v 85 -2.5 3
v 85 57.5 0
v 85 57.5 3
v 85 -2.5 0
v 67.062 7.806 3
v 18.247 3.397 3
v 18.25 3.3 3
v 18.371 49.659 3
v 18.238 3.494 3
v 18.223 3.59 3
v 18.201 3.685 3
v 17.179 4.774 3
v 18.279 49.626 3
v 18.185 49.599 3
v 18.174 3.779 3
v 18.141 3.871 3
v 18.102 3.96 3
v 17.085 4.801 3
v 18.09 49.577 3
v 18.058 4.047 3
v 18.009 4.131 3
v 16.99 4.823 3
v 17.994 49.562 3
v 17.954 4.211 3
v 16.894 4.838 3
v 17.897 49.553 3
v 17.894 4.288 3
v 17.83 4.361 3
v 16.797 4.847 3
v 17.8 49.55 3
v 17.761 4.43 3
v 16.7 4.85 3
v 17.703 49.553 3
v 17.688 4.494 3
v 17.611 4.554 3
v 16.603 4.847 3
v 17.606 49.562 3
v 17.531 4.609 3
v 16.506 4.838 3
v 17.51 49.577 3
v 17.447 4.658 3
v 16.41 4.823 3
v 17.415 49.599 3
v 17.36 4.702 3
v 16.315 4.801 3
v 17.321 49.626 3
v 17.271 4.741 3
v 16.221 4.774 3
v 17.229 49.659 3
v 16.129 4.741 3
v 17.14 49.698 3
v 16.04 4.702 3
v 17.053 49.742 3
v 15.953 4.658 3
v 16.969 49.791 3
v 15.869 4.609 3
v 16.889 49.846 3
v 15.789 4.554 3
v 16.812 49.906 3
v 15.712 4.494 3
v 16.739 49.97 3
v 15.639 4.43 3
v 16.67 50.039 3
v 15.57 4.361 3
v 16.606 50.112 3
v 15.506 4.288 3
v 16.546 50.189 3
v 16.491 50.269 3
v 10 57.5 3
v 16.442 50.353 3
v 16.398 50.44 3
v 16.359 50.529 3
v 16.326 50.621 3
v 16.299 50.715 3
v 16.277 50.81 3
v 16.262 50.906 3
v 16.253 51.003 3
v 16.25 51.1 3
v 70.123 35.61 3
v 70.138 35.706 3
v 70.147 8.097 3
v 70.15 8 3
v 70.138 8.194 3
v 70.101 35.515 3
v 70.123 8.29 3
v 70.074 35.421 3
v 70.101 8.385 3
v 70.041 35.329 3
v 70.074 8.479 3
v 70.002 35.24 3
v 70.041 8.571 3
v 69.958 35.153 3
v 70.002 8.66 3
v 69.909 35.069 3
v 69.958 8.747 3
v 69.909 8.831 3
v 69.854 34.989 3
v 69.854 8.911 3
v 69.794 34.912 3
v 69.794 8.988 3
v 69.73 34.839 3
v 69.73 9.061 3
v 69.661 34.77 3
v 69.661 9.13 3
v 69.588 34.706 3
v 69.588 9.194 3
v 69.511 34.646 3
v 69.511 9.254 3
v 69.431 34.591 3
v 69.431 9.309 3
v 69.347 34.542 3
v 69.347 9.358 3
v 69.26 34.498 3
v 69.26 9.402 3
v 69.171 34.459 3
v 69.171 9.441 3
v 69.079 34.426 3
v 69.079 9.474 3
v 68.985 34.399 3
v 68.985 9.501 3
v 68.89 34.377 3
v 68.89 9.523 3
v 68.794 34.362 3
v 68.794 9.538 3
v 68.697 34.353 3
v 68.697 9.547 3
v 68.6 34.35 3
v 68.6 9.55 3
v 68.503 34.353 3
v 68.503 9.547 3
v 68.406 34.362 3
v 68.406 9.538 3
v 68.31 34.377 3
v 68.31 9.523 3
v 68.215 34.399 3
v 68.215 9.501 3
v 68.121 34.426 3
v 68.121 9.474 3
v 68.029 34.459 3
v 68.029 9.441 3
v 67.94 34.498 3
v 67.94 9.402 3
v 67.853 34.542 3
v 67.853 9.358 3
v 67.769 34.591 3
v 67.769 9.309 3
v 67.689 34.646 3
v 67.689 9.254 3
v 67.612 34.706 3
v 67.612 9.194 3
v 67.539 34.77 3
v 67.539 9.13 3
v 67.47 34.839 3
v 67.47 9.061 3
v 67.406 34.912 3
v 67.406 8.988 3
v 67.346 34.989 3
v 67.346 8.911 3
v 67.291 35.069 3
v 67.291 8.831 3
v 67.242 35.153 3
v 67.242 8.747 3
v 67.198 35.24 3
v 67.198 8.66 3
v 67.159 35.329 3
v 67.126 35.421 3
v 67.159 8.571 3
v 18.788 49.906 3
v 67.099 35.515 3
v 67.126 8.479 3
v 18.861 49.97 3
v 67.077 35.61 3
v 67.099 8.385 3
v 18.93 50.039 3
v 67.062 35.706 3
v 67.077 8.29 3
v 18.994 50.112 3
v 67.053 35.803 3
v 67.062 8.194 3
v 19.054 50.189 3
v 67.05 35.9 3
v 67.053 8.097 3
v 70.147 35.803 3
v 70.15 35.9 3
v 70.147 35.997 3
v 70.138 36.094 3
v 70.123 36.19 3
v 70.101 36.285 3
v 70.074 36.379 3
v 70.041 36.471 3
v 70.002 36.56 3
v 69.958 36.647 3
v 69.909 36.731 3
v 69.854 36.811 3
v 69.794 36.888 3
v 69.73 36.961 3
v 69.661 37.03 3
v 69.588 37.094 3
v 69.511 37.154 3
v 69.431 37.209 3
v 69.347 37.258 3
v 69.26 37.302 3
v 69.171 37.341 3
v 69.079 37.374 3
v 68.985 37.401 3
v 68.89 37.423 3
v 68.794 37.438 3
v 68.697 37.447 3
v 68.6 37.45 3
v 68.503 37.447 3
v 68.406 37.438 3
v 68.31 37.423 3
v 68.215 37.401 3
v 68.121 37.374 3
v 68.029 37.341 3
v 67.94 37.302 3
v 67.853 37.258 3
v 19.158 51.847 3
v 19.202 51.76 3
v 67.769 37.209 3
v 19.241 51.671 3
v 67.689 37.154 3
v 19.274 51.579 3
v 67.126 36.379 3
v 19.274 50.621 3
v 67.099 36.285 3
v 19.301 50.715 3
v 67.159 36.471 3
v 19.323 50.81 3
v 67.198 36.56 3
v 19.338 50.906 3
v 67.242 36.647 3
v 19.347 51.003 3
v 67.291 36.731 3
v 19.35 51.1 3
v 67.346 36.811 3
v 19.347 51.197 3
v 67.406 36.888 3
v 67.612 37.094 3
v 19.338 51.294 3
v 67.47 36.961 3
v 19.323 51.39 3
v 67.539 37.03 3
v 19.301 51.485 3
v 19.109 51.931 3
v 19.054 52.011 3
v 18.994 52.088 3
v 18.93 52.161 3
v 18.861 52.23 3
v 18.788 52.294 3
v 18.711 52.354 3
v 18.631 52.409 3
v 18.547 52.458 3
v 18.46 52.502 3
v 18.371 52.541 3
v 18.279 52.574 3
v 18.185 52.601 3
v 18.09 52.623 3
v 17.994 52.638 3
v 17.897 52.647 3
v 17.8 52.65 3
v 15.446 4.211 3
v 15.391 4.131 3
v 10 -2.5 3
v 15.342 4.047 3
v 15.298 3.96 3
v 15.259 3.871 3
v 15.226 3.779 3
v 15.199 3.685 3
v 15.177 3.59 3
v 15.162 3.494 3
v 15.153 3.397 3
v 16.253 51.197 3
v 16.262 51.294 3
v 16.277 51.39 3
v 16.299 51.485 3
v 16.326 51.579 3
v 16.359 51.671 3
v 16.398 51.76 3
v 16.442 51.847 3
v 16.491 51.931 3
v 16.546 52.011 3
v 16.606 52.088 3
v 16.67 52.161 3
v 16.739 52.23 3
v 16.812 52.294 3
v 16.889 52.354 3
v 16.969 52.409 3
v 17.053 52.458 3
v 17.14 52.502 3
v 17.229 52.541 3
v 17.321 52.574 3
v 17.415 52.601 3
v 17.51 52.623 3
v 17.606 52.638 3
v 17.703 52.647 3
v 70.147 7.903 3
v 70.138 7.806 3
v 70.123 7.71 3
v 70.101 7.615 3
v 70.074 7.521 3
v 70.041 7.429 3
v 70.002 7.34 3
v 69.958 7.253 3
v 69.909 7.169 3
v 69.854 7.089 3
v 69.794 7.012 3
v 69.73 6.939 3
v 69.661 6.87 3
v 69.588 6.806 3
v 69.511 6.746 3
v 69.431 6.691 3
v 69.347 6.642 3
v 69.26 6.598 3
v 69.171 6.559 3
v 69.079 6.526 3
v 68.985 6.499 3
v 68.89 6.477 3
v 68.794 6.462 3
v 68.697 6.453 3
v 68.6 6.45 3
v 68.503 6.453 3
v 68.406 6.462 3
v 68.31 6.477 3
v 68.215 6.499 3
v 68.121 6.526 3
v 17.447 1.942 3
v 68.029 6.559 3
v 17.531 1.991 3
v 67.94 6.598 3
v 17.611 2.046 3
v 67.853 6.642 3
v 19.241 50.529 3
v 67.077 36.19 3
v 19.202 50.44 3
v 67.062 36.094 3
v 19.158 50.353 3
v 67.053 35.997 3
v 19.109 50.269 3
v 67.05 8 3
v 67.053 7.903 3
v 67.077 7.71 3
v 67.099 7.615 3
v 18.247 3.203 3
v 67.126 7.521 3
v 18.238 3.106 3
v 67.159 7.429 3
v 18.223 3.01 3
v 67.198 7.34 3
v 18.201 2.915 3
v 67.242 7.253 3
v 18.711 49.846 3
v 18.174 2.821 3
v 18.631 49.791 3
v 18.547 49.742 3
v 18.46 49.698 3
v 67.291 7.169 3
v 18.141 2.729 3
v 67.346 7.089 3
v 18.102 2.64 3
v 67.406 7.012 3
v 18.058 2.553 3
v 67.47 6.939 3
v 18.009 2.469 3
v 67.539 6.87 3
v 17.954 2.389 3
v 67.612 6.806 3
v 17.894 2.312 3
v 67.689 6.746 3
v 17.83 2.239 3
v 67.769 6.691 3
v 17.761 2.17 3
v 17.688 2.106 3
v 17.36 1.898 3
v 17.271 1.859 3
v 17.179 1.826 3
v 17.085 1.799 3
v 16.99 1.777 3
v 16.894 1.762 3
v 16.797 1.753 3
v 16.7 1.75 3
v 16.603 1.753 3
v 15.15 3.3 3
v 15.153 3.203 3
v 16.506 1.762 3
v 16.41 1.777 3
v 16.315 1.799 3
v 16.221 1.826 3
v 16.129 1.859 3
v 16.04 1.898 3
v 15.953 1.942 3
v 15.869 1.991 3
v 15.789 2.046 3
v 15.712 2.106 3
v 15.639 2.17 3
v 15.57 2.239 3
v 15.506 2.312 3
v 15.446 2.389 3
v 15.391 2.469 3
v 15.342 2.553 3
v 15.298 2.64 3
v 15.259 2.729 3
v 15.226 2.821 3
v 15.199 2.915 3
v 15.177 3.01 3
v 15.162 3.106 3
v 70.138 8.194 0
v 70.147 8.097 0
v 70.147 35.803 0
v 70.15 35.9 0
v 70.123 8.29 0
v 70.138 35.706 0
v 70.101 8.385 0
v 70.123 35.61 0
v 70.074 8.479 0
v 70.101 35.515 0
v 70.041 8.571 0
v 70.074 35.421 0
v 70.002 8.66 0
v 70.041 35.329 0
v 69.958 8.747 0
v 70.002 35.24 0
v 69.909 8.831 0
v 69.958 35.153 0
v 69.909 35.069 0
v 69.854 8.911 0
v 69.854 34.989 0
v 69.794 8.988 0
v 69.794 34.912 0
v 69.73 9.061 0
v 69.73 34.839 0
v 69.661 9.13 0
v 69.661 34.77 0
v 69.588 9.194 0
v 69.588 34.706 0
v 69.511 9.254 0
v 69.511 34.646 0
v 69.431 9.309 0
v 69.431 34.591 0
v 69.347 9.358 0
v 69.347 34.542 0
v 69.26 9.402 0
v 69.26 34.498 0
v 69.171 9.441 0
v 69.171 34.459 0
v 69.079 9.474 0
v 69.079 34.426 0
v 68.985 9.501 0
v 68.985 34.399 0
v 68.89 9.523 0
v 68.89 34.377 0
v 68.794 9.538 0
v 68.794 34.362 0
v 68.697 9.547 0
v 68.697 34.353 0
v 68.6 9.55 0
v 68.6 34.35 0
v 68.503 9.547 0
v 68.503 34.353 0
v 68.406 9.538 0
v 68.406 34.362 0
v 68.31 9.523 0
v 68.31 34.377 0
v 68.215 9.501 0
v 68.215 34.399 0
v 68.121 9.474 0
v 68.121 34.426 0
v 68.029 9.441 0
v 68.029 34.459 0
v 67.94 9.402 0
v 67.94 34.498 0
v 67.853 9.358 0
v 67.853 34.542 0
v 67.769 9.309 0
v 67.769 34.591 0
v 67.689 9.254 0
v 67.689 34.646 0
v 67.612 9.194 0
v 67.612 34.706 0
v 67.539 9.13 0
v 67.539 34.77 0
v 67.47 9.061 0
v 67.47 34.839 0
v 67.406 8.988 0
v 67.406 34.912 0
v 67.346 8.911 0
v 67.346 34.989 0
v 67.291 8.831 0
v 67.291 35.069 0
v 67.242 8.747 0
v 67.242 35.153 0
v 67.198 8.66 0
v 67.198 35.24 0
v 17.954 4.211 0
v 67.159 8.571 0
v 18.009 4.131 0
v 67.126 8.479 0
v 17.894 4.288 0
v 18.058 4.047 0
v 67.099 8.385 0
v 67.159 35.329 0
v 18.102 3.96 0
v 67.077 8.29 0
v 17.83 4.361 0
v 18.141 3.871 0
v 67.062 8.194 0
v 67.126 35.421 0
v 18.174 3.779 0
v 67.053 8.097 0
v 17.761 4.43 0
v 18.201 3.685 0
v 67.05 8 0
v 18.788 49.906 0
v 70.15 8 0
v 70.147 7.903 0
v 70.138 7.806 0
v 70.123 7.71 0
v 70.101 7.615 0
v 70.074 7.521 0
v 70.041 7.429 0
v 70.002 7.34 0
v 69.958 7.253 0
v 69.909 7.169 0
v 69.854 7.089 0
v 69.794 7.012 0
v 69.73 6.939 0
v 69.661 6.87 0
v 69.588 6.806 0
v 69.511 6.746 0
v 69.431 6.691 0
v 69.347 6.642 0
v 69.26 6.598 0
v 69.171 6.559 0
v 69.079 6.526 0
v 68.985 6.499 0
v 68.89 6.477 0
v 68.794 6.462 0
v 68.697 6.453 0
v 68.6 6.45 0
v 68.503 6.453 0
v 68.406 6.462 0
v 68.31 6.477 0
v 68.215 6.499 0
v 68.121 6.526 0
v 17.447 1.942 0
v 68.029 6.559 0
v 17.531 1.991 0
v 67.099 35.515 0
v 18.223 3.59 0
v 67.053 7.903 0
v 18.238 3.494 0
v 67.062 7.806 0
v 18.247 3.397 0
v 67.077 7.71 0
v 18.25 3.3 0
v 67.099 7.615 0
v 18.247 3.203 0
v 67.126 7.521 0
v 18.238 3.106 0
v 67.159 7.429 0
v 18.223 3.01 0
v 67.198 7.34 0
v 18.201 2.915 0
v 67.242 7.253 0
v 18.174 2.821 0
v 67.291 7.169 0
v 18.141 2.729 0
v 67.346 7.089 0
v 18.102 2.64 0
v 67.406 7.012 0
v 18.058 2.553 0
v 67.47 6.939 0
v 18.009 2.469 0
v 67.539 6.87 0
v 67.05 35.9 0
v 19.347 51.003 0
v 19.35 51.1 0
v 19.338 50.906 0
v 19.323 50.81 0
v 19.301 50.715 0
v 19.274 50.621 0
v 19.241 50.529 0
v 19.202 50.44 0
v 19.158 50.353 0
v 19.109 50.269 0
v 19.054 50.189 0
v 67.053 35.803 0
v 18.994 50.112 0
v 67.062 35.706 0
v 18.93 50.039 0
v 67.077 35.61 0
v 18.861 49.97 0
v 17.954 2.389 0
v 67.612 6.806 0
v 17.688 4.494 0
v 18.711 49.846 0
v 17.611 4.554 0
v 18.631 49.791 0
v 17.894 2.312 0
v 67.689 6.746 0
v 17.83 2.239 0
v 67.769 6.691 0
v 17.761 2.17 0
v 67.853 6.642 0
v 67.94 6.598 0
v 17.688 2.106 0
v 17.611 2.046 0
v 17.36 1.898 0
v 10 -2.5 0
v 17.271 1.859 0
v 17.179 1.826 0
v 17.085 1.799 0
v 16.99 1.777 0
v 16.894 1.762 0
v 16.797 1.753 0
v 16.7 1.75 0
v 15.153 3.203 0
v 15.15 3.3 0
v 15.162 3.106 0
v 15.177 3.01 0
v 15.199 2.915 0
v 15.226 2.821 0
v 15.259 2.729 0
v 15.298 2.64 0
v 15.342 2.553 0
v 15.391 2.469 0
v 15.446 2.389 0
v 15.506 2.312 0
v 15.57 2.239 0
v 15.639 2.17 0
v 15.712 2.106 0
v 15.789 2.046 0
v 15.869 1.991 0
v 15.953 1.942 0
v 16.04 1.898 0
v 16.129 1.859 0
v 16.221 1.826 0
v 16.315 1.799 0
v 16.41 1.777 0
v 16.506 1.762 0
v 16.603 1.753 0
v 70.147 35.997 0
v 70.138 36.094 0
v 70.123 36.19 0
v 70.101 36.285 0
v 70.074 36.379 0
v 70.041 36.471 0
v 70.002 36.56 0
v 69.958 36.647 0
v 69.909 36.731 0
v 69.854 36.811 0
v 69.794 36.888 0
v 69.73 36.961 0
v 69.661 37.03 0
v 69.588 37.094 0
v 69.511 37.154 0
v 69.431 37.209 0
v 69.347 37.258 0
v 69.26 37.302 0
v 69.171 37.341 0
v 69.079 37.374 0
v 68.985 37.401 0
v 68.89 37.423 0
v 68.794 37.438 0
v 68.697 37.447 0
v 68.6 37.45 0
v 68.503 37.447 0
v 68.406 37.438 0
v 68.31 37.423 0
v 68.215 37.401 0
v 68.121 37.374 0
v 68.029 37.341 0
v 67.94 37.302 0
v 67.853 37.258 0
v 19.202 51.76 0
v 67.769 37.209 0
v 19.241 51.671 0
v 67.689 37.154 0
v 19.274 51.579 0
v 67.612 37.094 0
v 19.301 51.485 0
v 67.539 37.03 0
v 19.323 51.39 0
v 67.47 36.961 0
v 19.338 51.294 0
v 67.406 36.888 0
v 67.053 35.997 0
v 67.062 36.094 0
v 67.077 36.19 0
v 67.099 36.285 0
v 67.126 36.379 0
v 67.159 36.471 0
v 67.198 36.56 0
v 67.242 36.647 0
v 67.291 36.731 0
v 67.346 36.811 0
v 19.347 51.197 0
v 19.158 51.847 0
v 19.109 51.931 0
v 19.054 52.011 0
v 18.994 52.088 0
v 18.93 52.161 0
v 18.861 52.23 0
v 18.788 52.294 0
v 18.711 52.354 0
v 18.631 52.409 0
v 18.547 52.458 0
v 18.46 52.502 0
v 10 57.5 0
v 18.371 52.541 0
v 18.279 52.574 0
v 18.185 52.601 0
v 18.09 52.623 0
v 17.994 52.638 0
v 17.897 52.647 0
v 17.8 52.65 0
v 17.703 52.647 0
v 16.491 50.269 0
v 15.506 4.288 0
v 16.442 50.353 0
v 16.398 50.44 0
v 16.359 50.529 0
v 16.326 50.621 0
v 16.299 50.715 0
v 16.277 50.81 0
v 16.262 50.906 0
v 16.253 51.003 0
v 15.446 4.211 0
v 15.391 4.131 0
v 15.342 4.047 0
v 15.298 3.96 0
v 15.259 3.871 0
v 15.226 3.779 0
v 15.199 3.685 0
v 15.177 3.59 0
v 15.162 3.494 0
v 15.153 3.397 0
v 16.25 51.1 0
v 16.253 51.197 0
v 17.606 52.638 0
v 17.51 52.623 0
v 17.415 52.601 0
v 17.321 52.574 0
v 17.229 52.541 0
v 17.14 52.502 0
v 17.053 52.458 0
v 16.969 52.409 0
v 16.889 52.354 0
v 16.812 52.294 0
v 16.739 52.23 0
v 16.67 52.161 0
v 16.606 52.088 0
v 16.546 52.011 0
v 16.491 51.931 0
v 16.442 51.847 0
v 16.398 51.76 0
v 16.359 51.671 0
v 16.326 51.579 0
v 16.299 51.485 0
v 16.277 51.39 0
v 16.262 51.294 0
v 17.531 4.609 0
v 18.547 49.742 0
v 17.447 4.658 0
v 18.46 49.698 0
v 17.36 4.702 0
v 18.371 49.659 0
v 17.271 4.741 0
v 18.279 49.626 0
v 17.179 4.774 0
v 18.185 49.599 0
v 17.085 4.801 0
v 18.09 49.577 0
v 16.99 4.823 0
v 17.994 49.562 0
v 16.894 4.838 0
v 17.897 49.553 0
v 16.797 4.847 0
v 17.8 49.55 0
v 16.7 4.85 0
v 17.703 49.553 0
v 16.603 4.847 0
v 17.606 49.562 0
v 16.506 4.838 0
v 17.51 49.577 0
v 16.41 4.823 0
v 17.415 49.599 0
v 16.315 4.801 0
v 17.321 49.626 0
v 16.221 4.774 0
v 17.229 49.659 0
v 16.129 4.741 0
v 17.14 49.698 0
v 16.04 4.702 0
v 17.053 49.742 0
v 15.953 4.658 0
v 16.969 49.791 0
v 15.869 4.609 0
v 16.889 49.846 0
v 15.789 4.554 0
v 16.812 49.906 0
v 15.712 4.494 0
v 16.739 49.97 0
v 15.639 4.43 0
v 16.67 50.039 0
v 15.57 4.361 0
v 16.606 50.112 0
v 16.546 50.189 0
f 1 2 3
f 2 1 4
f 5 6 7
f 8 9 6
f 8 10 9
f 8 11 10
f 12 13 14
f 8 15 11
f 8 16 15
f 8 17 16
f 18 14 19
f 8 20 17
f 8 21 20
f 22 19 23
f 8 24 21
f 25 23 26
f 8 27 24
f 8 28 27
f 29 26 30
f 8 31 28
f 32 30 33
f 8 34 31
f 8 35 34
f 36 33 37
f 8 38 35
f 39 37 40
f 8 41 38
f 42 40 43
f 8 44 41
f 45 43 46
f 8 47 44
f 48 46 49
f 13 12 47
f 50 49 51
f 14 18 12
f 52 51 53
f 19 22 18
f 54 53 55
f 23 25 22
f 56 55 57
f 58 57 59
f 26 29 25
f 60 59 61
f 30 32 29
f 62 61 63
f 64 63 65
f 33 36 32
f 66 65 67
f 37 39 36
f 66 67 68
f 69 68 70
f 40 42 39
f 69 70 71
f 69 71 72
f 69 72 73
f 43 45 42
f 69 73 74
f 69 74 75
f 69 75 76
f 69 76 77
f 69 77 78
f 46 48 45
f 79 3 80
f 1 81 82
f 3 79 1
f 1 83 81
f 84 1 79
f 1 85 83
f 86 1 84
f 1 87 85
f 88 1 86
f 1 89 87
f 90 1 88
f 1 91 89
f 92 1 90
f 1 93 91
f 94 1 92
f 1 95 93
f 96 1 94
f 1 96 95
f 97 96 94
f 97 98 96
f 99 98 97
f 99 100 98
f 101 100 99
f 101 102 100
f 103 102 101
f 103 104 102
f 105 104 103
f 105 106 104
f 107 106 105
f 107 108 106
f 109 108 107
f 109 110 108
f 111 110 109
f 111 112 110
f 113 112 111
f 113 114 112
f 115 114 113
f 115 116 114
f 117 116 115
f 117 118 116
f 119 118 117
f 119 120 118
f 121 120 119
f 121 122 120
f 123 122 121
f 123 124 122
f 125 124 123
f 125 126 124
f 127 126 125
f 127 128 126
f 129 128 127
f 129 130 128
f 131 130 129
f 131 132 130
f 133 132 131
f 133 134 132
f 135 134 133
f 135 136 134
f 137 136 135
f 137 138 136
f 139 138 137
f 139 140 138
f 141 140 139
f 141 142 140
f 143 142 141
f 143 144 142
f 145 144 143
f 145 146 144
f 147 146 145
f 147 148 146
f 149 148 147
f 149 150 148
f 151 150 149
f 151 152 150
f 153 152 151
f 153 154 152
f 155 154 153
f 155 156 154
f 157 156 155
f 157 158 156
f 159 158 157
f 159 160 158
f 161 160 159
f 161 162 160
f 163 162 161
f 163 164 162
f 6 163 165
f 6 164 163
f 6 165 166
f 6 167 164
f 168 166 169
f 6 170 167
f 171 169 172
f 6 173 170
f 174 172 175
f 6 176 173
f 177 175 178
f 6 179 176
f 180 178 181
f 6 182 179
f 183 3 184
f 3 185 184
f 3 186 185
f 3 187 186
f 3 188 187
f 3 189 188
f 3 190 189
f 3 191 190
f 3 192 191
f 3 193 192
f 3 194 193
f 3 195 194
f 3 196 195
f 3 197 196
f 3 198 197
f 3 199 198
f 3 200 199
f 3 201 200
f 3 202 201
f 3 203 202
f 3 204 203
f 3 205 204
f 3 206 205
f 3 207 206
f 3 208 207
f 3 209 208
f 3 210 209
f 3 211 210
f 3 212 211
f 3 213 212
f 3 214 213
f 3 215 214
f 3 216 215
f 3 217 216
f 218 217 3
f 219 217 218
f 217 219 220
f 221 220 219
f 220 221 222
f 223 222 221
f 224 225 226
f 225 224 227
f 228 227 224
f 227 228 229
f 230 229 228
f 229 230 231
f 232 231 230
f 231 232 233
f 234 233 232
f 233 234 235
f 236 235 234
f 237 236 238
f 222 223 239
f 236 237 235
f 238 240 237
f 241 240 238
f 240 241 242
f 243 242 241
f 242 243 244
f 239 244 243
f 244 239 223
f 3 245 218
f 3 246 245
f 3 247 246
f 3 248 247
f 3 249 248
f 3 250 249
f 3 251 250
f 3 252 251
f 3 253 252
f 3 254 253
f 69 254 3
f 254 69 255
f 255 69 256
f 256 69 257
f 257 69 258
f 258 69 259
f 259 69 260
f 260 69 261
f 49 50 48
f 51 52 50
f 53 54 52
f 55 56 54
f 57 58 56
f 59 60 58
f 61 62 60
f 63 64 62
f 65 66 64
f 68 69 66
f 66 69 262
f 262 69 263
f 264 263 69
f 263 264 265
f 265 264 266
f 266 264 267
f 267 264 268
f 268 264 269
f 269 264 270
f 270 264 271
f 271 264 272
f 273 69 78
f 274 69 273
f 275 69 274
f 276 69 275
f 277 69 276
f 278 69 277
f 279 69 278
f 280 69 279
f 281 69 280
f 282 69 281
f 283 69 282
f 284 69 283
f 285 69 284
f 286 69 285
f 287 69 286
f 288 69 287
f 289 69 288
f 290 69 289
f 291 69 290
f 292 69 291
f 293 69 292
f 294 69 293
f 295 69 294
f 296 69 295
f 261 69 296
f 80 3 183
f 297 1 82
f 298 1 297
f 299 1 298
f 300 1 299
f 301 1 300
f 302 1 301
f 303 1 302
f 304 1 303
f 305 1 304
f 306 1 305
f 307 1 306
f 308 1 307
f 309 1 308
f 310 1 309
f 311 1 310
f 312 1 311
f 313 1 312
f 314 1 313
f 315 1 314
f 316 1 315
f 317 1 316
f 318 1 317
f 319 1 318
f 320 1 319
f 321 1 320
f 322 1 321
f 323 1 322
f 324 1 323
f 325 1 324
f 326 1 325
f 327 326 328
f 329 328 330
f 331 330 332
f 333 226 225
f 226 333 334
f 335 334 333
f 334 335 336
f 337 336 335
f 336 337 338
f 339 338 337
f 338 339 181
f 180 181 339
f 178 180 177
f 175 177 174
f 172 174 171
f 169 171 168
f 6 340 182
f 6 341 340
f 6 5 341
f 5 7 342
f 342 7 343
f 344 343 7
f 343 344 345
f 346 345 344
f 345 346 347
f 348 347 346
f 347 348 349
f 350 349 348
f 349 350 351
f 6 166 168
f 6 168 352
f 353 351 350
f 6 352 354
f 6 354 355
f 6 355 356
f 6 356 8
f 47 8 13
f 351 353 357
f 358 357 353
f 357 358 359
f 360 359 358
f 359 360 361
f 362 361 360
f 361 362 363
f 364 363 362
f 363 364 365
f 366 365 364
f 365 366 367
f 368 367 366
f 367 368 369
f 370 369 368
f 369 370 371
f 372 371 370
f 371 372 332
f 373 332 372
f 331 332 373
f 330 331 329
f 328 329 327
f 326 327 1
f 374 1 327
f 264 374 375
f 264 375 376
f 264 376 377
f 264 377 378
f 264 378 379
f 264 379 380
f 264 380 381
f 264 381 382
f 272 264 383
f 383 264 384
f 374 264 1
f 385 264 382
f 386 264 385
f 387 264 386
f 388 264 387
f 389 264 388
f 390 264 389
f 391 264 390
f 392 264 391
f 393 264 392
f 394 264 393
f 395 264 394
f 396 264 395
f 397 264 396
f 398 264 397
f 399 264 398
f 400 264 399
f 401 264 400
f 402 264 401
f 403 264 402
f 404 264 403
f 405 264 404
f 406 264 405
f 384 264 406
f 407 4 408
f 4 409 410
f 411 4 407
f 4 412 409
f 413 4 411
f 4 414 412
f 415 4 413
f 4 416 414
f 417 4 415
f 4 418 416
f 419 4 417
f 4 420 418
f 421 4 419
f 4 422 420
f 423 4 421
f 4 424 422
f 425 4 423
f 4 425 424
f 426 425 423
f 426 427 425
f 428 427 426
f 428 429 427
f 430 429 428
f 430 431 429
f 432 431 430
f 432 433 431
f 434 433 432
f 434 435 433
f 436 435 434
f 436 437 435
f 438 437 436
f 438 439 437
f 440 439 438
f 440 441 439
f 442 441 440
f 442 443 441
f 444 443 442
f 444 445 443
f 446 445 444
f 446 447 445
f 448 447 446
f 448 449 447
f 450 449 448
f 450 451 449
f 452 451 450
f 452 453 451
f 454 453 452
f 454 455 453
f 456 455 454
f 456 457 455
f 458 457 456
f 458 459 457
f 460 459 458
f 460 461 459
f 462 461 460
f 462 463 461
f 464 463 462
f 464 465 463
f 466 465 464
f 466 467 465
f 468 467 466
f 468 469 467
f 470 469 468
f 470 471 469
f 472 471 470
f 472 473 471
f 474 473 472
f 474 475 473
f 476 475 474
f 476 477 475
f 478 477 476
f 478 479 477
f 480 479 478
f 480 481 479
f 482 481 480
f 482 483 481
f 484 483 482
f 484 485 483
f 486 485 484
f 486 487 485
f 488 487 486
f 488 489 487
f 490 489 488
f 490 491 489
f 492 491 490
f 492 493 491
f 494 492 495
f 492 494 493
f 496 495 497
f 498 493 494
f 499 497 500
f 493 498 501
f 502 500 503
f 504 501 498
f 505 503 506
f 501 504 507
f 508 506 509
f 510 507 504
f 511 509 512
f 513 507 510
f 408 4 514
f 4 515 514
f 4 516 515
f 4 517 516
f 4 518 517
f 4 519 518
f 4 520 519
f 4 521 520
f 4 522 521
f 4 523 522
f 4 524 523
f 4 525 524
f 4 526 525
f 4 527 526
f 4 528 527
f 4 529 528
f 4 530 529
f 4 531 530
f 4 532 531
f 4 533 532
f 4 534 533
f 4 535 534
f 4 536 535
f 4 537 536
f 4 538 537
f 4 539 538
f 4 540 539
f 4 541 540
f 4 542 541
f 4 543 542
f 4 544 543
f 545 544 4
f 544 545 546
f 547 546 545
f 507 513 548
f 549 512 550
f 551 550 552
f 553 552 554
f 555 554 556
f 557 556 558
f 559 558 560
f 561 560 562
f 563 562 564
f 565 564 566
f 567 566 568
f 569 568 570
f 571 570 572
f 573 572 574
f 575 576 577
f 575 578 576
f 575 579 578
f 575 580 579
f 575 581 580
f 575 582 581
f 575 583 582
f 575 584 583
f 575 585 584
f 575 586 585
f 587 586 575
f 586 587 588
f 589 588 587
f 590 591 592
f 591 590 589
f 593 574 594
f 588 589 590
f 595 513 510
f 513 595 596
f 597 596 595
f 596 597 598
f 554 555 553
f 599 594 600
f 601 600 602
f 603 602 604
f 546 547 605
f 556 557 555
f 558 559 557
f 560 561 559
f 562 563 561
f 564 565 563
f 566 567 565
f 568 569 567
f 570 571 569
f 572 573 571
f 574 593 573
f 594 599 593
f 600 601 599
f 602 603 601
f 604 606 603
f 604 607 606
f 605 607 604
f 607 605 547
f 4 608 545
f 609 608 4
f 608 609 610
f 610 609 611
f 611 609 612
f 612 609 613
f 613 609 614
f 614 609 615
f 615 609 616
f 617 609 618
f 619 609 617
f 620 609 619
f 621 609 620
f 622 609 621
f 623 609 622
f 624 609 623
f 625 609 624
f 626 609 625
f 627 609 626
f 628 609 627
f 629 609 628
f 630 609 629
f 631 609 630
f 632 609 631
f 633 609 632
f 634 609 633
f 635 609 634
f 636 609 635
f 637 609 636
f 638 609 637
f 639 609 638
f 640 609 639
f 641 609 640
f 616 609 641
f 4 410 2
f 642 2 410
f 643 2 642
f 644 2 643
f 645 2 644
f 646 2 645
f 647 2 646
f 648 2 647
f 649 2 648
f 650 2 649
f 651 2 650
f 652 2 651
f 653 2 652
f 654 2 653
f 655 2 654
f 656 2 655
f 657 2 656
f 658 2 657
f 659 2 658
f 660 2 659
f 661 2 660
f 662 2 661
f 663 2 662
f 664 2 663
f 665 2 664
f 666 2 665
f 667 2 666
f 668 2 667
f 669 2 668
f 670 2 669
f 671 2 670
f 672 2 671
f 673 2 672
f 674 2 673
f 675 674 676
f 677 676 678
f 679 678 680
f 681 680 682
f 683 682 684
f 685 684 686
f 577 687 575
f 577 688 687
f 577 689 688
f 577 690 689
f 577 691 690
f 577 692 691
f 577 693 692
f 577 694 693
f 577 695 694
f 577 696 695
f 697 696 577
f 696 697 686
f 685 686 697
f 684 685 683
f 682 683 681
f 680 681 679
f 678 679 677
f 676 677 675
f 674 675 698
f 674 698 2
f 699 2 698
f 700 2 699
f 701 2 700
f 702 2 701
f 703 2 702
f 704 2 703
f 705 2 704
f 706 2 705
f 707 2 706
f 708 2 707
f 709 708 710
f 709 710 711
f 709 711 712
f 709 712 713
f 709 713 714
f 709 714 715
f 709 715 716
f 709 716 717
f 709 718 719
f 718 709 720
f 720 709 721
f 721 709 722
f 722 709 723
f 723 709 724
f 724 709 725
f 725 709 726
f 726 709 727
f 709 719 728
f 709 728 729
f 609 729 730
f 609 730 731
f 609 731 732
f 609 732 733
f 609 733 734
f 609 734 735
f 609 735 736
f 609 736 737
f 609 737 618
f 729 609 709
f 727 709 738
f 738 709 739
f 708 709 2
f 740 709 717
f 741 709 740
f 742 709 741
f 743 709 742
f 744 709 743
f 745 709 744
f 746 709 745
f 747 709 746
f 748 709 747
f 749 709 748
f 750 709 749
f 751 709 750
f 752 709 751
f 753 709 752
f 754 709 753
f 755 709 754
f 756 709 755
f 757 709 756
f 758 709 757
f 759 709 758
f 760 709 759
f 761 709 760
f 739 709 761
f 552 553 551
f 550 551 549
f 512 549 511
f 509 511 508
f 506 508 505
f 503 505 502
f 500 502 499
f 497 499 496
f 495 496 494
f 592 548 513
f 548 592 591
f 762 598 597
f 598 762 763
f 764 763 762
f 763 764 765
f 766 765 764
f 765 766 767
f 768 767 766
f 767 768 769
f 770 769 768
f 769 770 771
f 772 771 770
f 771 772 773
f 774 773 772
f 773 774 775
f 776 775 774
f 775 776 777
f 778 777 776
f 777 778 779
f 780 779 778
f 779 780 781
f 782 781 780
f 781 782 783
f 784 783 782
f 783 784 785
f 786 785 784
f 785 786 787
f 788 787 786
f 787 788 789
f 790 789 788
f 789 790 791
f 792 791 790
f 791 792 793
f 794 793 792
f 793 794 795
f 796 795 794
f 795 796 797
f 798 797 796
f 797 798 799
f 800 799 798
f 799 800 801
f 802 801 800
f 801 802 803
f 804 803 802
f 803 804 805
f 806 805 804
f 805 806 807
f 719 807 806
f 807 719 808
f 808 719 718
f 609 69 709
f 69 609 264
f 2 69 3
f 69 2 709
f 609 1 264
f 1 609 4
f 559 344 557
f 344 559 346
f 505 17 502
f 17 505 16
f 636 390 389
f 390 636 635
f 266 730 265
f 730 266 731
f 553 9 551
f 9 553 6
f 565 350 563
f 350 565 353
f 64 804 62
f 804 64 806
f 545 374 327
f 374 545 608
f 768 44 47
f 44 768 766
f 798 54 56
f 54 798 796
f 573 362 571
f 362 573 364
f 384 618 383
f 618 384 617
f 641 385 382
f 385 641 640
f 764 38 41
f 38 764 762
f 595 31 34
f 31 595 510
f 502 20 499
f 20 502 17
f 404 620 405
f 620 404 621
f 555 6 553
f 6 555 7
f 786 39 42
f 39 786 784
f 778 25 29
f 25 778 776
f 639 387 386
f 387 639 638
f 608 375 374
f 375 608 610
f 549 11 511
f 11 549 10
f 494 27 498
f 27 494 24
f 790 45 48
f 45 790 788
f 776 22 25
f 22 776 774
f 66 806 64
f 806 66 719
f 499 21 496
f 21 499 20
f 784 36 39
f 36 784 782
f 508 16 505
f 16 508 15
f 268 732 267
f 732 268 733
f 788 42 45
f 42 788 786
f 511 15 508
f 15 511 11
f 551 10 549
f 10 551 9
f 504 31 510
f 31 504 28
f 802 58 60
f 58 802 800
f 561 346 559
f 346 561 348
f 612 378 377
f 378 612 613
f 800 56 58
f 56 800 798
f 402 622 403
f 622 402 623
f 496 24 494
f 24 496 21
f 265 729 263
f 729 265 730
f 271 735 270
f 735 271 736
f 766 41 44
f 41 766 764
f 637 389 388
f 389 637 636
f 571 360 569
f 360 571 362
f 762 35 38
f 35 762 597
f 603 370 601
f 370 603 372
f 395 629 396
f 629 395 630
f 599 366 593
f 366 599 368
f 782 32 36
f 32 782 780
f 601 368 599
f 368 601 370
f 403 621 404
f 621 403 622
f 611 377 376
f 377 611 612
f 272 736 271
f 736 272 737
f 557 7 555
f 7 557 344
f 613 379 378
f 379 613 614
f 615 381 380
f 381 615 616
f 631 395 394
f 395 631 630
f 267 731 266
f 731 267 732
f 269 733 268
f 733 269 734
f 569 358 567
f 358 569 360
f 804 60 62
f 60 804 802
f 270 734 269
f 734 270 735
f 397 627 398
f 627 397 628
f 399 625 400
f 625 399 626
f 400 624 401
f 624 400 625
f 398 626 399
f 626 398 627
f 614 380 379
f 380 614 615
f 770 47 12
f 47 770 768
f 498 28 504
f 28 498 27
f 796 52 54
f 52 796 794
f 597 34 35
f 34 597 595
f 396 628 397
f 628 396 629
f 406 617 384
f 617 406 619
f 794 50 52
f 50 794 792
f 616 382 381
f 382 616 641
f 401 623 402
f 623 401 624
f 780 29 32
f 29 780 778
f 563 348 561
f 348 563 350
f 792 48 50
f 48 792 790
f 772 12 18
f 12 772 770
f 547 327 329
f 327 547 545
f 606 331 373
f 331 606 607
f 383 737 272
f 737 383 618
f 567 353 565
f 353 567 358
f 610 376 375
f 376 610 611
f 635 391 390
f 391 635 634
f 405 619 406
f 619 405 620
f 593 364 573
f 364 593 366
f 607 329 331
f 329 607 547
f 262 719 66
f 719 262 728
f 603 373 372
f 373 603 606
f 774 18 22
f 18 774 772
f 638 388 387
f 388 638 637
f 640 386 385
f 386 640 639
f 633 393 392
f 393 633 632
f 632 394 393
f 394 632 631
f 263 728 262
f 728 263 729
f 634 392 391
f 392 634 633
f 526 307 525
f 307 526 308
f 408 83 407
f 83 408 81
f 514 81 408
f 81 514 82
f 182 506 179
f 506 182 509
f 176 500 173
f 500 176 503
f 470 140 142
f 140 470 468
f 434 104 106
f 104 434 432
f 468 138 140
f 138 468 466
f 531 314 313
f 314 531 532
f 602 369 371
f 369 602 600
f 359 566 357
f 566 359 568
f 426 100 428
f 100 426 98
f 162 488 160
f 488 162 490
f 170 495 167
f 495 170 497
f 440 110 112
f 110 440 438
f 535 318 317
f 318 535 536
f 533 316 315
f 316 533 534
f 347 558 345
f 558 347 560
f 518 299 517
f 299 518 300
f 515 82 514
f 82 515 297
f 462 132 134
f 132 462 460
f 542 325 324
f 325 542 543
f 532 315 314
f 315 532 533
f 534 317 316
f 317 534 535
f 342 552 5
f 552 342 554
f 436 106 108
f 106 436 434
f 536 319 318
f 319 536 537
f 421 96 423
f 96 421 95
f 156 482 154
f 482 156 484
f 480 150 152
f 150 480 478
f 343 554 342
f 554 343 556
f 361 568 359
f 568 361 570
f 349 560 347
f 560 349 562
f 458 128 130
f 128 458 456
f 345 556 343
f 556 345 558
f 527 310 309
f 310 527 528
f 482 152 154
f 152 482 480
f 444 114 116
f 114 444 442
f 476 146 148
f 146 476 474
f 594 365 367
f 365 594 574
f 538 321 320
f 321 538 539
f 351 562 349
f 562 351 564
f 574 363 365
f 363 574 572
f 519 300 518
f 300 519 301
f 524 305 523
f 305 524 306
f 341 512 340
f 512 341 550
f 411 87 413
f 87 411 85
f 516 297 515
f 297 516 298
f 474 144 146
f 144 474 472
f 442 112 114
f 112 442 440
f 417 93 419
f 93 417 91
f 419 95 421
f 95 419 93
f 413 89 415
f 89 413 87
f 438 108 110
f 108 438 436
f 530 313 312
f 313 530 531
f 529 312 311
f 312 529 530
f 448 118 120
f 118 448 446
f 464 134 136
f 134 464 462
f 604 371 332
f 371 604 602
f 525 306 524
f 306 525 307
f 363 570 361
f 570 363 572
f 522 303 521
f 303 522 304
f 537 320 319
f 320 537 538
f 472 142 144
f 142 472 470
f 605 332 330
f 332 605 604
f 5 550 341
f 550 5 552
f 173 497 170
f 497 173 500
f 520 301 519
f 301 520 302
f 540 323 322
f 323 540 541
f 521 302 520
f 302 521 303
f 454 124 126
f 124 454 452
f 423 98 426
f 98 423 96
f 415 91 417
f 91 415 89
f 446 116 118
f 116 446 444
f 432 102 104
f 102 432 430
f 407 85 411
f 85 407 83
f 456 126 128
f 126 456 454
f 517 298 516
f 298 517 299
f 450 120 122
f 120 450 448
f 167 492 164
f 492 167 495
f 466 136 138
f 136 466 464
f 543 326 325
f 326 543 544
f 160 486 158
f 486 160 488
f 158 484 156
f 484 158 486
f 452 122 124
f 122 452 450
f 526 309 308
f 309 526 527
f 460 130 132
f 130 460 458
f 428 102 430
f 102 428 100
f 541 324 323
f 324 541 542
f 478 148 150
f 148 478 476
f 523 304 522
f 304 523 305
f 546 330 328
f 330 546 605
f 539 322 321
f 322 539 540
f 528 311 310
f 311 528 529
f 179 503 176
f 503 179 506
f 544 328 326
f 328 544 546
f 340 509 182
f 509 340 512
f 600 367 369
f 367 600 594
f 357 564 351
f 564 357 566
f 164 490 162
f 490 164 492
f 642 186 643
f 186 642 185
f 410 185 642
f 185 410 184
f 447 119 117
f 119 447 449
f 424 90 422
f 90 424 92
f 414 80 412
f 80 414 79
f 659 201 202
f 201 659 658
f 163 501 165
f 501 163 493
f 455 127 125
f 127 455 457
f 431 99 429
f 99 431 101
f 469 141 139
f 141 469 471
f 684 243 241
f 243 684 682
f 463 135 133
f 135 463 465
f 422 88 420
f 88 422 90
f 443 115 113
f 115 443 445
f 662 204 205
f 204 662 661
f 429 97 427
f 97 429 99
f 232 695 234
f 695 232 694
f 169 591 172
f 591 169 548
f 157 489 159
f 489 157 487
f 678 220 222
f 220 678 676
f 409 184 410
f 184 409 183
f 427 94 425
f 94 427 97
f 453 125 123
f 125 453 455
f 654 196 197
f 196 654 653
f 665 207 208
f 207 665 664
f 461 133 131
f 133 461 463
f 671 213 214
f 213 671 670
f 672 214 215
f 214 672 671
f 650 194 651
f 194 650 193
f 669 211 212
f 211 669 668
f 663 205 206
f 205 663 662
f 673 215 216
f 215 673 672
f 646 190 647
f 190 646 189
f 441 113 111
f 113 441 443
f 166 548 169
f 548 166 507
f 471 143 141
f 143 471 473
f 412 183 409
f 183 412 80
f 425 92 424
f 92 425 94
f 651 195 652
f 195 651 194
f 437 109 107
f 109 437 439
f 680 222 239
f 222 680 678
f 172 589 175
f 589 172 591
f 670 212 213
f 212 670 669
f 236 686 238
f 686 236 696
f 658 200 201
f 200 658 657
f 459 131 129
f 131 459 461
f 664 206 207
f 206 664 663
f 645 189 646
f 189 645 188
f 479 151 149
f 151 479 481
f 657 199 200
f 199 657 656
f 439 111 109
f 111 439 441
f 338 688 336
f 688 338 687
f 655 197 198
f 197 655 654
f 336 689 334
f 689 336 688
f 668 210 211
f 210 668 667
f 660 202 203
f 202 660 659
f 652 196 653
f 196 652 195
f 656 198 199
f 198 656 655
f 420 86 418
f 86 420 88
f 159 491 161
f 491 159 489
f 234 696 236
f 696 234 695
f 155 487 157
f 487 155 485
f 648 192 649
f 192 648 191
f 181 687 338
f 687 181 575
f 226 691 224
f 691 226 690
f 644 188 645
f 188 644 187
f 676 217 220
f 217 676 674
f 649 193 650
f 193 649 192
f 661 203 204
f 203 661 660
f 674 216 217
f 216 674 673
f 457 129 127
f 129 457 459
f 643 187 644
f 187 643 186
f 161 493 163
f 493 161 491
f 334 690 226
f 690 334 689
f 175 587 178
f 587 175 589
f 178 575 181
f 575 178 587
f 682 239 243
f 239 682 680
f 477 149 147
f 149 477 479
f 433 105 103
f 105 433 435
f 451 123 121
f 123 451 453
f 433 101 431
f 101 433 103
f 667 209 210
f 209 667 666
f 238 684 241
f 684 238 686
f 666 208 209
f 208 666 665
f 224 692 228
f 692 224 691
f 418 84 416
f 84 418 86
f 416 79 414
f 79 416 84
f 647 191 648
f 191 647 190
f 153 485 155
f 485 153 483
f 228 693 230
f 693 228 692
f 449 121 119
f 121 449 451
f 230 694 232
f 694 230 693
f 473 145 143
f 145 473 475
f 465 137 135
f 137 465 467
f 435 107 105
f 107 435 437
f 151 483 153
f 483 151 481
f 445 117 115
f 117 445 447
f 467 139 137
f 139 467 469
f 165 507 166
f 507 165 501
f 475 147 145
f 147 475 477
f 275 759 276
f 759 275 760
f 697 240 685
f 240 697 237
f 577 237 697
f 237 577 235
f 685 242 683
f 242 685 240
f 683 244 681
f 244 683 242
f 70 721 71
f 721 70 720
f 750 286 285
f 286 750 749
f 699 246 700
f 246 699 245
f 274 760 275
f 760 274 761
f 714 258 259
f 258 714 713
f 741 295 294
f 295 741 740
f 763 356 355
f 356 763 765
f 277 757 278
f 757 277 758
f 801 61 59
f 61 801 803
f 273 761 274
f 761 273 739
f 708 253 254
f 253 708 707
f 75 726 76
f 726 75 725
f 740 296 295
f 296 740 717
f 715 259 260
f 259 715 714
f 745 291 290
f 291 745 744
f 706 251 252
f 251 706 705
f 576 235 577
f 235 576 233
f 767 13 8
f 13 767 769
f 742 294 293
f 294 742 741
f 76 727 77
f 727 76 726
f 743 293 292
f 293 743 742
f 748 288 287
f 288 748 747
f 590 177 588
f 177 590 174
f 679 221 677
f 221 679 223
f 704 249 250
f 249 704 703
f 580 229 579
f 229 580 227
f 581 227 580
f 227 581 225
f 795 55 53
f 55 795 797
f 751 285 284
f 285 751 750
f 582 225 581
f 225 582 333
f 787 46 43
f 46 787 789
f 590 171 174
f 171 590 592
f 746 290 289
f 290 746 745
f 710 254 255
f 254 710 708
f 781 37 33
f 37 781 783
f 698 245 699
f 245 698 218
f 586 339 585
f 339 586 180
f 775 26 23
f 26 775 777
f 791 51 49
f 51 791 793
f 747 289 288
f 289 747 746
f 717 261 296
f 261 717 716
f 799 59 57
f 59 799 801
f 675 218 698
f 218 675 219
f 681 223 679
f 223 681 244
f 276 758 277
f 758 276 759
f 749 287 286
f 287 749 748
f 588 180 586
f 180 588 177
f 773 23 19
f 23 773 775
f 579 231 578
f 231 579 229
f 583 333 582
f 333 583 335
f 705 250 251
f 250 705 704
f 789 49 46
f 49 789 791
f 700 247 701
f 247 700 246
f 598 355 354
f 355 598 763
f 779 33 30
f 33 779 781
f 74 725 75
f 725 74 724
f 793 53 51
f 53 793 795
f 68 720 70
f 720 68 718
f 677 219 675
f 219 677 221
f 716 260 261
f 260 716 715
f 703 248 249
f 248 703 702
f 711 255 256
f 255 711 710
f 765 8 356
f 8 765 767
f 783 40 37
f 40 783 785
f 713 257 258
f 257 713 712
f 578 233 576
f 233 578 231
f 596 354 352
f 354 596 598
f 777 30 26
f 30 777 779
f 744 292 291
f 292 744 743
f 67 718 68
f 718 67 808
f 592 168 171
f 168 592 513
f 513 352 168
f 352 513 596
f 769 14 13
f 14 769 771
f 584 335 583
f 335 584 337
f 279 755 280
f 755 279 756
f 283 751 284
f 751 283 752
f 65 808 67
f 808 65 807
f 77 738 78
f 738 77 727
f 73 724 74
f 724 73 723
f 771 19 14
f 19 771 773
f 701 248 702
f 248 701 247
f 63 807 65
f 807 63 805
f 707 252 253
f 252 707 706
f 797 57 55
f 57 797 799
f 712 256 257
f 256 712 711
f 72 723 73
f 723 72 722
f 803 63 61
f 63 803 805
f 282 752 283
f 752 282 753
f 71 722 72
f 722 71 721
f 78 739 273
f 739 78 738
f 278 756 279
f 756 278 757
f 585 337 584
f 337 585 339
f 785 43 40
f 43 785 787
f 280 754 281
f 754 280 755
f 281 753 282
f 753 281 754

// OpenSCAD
$fn = 100;

bolt_d = 3.1;
w=75;
l=60;
h=3;

x1=74.8 - 51.9 - 6.2;
y1=3.3;

x2=x1+51.9;
y2=y1+4.7;

x3=x2;
y3=y2+27.9;

x4=x1+1.1;
y4=y3+15.2;
difference(){
    translate([10,-2.5])
cube([w,l,h]);
    
    translate([x1,y1, -h])
    cylinder(h*3,d=bolt_d);
    
    translate([x2,y2, -h])
    cylinder(h*3,d=bolt_d);
    
    translate([x3,y3, -h])
    cylinder(h*3,d=bolt_d);
    
    translate([x4,y4, -h])
    cylinder(h*3,d=bolt_d);
    
}
